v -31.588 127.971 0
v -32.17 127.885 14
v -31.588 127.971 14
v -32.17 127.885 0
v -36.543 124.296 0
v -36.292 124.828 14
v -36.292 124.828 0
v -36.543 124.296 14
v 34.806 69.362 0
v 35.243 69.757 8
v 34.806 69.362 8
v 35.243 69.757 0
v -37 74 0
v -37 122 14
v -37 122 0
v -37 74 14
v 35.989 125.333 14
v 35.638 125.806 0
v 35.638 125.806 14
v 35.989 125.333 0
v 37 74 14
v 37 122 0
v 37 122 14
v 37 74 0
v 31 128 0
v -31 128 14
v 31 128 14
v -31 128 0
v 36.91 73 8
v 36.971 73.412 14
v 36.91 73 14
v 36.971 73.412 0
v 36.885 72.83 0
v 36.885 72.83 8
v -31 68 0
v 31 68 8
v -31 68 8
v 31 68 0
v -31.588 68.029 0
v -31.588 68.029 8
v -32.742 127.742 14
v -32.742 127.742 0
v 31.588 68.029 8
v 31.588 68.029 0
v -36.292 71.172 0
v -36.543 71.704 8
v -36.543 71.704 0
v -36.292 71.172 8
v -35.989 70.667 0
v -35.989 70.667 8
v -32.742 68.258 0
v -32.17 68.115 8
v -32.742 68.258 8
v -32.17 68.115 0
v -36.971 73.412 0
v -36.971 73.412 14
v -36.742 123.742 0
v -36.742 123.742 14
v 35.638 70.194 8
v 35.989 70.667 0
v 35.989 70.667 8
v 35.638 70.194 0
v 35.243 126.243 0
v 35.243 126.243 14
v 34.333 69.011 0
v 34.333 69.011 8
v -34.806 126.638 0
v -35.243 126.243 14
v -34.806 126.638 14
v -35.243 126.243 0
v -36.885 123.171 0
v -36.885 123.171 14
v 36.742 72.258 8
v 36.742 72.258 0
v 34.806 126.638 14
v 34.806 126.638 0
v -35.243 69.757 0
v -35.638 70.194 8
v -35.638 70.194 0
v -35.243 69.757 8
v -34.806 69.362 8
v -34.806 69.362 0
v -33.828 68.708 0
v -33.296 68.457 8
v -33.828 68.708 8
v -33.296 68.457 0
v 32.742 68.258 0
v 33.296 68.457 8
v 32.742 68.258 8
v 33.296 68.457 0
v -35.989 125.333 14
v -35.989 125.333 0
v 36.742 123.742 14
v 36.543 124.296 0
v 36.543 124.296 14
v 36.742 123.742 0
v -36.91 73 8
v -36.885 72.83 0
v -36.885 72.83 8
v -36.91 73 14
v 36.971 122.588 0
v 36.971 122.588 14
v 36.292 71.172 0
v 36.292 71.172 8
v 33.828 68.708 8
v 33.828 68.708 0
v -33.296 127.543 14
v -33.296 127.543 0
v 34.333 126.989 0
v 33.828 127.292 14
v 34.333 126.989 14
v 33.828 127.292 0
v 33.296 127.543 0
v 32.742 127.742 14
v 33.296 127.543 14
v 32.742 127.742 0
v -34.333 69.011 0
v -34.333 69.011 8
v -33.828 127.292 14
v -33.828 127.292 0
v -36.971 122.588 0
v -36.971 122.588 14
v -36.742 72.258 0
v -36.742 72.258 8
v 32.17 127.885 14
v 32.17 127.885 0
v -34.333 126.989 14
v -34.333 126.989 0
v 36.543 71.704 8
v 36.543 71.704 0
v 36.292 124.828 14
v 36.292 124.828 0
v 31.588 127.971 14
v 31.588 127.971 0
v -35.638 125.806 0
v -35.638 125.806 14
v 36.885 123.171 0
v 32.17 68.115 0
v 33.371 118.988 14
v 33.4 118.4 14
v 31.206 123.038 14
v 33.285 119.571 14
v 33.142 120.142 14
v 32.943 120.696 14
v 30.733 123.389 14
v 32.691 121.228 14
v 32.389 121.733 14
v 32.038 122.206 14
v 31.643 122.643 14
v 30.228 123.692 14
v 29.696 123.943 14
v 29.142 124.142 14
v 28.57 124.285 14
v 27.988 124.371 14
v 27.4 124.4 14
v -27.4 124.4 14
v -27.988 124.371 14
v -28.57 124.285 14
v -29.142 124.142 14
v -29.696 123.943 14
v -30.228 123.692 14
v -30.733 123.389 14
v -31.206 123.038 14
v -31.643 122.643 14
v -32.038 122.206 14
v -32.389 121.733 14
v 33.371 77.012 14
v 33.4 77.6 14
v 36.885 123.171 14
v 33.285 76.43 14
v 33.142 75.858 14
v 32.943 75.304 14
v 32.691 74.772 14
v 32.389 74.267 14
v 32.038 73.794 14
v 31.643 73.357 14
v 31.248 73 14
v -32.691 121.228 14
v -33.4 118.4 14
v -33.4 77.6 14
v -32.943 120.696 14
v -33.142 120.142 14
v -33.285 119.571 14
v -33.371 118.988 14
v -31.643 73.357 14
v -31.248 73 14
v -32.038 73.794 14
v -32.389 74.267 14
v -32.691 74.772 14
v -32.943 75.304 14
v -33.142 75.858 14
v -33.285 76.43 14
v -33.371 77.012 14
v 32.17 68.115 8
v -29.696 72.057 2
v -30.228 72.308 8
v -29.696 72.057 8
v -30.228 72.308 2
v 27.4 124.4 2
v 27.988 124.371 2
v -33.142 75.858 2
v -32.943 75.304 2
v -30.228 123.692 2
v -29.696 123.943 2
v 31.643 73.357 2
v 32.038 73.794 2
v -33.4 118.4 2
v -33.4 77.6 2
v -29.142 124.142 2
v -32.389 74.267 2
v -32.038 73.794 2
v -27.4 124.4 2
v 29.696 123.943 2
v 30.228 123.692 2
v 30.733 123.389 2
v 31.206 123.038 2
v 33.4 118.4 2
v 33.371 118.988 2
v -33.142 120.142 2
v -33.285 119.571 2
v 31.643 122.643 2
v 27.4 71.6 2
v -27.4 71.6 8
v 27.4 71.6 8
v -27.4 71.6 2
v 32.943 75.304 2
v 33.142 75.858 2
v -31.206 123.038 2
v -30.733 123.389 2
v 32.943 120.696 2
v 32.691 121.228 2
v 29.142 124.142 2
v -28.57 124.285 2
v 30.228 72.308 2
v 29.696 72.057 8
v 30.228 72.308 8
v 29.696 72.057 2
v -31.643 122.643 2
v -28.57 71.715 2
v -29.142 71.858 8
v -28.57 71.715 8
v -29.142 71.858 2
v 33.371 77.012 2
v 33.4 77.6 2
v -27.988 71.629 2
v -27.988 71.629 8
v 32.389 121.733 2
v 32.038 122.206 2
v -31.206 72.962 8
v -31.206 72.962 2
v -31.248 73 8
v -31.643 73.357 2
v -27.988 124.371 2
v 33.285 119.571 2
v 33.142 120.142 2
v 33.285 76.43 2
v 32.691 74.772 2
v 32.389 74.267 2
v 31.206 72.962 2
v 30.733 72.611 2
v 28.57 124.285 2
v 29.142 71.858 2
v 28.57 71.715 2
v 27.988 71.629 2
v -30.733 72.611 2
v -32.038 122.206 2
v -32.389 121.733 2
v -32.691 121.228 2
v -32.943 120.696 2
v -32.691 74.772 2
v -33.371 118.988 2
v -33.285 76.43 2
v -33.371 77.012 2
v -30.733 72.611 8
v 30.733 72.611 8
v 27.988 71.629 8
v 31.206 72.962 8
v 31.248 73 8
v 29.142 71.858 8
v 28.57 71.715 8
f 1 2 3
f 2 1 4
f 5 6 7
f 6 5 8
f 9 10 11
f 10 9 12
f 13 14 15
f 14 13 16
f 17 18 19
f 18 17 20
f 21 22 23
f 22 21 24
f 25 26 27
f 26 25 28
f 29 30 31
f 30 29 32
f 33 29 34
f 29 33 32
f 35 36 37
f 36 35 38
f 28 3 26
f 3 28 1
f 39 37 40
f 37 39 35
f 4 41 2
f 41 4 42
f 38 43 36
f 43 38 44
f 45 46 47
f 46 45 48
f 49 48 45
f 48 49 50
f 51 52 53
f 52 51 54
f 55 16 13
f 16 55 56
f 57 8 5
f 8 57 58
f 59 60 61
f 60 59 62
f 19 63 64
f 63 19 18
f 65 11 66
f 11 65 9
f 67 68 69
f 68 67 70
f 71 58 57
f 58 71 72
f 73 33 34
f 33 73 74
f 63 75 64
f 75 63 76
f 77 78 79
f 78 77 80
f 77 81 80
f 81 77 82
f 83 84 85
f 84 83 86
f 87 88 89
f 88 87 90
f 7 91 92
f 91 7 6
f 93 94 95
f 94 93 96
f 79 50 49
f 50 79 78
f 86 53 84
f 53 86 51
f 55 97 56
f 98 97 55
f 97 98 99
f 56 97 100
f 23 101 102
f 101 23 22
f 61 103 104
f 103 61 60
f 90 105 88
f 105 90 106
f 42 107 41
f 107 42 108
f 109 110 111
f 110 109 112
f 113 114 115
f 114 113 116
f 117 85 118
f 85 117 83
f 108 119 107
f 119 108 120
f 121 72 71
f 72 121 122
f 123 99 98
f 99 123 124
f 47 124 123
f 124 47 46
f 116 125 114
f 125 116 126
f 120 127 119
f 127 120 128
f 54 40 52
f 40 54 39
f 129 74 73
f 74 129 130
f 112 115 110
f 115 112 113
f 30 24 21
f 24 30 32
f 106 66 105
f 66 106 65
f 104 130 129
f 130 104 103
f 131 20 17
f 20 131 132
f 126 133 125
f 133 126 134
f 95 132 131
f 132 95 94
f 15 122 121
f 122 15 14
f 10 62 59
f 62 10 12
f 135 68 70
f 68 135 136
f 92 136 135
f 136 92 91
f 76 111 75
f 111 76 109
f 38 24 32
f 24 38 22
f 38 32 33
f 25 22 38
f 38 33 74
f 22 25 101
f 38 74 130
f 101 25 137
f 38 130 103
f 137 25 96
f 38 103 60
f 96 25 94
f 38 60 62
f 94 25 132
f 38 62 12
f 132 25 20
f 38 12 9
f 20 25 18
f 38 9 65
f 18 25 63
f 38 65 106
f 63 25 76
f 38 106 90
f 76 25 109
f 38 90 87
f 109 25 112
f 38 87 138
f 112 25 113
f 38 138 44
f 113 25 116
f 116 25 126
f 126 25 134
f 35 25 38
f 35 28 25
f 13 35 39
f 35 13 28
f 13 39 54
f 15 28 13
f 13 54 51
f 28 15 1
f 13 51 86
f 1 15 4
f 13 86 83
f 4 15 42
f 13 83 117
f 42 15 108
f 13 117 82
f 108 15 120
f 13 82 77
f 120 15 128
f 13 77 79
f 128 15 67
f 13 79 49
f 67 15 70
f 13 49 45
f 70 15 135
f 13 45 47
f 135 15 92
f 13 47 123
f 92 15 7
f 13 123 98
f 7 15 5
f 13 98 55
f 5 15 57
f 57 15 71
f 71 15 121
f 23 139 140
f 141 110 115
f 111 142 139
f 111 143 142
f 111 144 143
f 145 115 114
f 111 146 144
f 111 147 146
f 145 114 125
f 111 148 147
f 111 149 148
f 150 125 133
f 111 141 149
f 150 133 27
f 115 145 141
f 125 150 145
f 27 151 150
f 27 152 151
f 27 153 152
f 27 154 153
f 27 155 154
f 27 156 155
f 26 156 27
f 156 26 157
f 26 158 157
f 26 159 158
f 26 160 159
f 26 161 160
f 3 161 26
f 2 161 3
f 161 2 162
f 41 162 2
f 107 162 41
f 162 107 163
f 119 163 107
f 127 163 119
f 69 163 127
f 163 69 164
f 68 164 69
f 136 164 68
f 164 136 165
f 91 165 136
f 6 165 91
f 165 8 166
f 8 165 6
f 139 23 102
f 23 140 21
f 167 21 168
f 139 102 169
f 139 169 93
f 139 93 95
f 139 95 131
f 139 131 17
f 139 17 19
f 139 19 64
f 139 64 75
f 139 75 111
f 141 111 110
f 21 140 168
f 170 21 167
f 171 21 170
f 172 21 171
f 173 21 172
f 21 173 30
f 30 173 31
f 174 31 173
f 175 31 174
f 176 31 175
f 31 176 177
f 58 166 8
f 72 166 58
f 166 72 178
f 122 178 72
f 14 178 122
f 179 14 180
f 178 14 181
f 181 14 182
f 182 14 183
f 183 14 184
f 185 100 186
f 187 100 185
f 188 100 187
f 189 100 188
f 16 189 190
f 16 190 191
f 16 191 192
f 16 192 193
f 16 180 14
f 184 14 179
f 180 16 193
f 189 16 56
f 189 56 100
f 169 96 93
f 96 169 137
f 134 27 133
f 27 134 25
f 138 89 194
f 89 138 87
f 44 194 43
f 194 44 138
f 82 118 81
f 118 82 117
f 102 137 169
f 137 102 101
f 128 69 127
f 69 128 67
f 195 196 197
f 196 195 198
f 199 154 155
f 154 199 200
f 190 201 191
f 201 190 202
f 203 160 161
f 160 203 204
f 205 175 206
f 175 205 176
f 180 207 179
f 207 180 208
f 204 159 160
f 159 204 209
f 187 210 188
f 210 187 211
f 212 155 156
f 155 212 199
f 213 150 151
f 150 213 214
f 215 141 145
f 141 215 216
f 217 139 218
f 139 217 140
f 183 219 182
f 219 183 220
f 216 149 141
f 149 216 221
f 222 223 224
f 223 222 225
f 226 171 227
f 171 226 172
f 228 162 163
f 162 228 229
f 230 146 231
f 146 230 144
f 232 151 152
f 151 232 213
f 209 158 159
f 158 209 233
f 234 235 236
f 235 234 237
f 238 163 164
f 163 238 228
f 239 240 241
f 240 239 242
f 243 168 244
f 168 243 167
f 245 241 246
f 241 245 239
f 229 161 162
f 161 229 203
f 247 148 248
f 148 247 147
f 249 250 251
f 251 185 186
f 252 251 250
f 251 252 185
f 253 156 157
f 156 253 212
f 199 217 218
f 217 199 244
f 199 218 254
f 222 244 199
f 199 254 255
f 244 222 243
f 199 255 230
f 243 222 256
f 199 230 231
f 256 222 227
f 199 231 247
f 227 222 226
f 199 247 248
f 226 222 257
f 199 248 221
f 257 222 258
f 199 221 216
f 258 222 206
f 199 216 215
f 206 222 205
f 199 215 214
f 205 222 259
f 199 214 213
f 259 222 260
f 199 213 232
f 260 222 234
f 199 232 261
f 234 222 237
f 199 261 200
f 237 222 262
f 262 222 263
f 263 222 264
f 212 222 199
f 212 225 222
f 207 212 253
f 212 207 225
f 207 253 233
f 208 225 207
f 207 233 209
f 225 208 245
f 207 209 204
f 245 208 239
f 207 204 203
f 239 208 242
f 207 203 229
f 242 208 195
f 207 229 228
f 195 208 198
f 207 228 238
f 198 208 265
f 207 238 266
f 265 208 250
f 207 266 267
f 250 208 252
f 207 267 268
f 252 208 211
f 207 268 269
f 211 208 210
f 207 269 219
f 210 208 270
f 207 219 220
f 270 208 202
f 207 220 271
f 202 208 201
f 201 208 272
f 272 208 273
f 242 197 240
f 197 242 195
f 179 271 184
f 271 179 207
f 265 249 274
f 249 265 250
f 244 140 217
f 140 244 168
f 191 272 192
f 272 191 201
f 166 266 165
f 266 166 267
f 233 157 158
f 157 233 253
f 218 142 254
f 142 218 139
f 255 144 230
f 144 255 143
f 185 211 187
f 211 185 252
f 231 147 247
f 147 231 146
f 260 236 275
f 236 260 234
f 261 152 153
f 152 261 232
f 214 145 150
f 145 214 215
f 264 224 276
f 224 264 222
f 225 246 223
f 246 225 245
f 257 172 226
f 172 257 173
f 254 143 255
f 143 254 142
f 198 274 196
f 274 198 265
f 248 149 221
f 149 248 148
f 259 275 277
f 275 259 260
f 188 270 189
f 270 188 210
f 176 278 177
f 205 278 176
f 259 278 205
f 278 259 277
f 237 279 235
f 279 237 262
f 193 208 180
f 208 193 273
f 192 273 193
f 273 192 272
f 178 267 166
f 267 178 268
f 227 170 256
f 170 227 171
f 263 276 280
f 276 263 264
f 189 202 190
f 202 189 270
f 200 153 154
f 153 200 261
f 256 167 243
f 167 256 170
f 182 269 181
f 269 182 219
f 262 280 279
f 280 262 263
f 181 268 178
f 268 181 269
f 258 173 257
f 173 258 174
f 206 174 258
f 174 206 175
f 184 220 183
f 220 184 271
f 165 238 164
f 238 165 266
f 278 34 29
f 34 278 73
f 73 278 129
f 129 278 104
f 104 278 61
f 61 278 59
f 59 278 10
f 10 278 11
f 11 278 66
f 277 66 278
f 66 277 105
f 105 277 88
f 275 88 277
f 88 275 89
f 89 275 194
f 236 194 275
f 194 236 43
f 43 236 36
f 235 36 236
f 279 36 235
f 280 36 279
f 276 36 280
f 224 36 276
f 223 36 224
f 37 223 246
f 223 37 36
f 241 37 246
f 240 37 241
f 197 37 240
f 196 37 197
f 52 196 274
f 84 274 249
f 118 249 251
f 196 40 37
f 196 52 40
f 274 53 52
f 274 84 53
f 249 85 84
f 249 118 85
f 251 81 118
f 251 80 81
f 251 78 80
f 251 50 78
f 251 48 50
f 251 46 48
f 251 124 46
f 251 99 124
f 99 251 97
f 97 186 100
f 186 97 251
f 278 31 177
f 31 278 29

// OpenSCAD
// file: lib_v2.scad
// ============================================================================
// Shared geometry helpers for the v2 print set.   include <lib_v2.scad>;
// ============================================================================

// Wedge prism, centred on +X, spanning +/- ang/2, rising from z = 0.
module sector_prism(r, ang, h, seg = 64) {
    steps = max(4, ceil(ang / 2.5));   // ~2.5 deg chords, independent of ang
    linear_extrude(height = h)
        polygon(concat(
            [[0, 0]],
            [for (i = [0 : steps])
                let (a = -ang / 2 + ang * i / steps) [r * cos(a), r * sin(a)]]
        ));
}

// Annular sector prism, centred on +X, rising from z = 0.
module ring_sector(r_in, r_out, ang, h, seg = 64) {
    difference() {
        sector_prism(r_out, ang, h, seg);
        translate([0, 0, -0.05]) cylinder(h = h + 0.1, r = r_in, $fn = seg);
    }
}

module tube(od, id, h) {
    difference() {
        cylinder(h = h, d = od);
        translate([0, 0, -0.05]) cylinder(h = h + 0.1, d = id);
    }
}

// Inward ledge with a 45 deg self-supporting underside. Top face at z_top.
module chamfered_ledge(r_wall, w, z_top) {
    rotate_extrude(convexity = 4)
        polygon([[r_wall - w, z_top],
                 [r_wall,     z_top],
                 [r_wall,     z_top - w]]);
}

// Thin slab used as a hull station for the chute trough.
module station_slab(y, z, w, t = 0.6) {
    translate([-w / 2, y - t / 2, z]) cube([w, t, 0.6]);
}
// file: parameters_v2.scad
// ============================================================================
// Automated Pill Dispenser — v2 "carousel-only rotation" architecture
// Shared parametric dimensions.   include <parameters_v2.scad>;
//
// Coordinate convention: z = 0 is the table / underside of the drum.
// +Y is the FRONT of the unit (chute, catch tray, camera side).
// Every part module is authored in ASSEMBLY coordinates; each part file
// applies its own print-orientation transform for STL export.
// ============================================================================

// ---------------------------------------------------------------- print / fit
layer_h        = 0.2;
nozzle_d       = 0.4;
wall           = 3.0;   // drum wall thickness
fit_slip       = 0.35;  // sliding fit (rotating / removable parts)
fit_press      = 0.10;  // press fit
m3_pilot_d     = 2.55;  // self-tapping M3 into PLA
m3_free_d      = 3.35;
m2_pilot_d     = 1.65;  // servo tab screws
m2_free_d      = 2.30;

// ---------------------------------------------------------------- drum (A)
h_od           = 120.0;
h_id           = h_od - 2 * wall;          // 114.0
h_ri           = h_id / 2;                 // 57.0
h_top_z        = 86.0;                     // top rim height

// ---------------------------------------------------------------- fixed plate (B)
plate_t        = 4.0;
plate_z        = 52.0;                     // plate UNDERSIDE
plate_top      = plate_z + plate_t;        // 56.0
plate_dia      = h_id - 0.6;               // 113.4  (0.3 gap per side)
plate_r        = plate_dia / 2;

ledge_w        = 3.0;                      // inward width of the support ledge
key_n          = 3;                        // anti-rotation keys
key_arc_w      = 10.0;                     // key width (chord, mm)
key_h          = 3.0;                      // key depth below the plate
key_angles     = [30, 150, 270];

// The one and only opening in the fixed plate. Opens right out to the rim so
// no pill can ever ride around on a closed outer ledge.
// Width is set by the leak rule below, not by taste.
open_deg       = 18.0;
open_r_in      = 15.0;
open_deg_ctr   = 90.0;                     // centred on +Y (front)

// Centre pilot: a post stands up from the plate and the carousel hub drops
// onto it. The post carries the carousel's weight, so the servo shaft only
// ever sees torque, and both halves print with no overhangs.
pilot_d        = 10.0;
pilot_engage   = 2.4;

// ---------------------------------------------------------------- carousel (C)
car_n          = 6;                        // compartments
car_od         = h_id - 1.4;               // 112.6 -> 0.7 mm pill-proof wall gap
car_r          = car_od / 2;
car_floor_t    = 2.4;
car_div_t      = 2.4;
car_div_h      = 24.0;                     // divider height ABOVE the floor
car_hub_od     = 28.0;
car_gap        = 0.6;                      // running gap, carousel floor -> plate
car_z          = plate_top + car_gap;      // 56.6 floor underside
car_top        = car_z + car_floor_t + car_div_h;

// One drop hole per compartment. THE LEAK RULE: the solid floor band between
// two holes (pitch - car_hole_deg) must be WIDER than the plate opening, or the
// parked carousel leaves part of the opening uncovered and its neighbours
// dribble pills into the chute. 60 - 30 = 30 deg of band over an 18 deg
// opening leaves +/- 6 deg of servo parking error before anything leaks.
car_hole_deg   = 30.0;
car_hole_r_in  = 15.5;
car_hole_r_out = car_r + 1.0;              // breaches the rim: nothing rides past

// Because the hole is narrower than the compartment, each floor flange is
// ramped so tablets roll into the hole instead of parking on a flat ledge.
ramp_phi       = 22.0;
ramp_max_h     = 6.0;

pilot_post_h   = car_gap + pilot_engage;   // 3.0, stands on the plate
pilot_bore_d   = pilot_d + fit_slip;       // 10.35 journal in the hub underside

// Round MG90S horn, screwed splines-up into the hub top. The servo shaft just
// plugs down into it, so the carousel still lifts straight out for refilling.
horn_disc_d    = 20.4;
horn_disc_h    = 4.2;
horn_hole_r    = 7.5;
horn_screw_n   = 4;
horn_boss_d    = 8.5;                      // spline boss / screw-head relief
horn_boss_depth= 8.0;

// ---------------------------------------------------------------- servo (MG90S)
servo_l        = 22.8;
servo_w        = 12.2;
servo_case_h   = 22.5;
servo_tab_span = 32.2;
servo_tab_t    = 2.5;
servo_shaft_in = 5.9;   // shaft axis, measured in from the flange-side case end
servo_nose_h   = 6.0;   // flange plane -> top of case
servo_shaft_h  = 4.7;   // shaft protrusion above the case

// ---------------------------------------------------------------- servo bridge (E)
bridge_t       = 4.0;
bridge_z       = h_top_z;                  // sits on the rim
bridge_ear_n   = 4;
bridge_ear_w   = 16.0;
boss_out       = 5.0;                      // external screw boss, radial depth
boss_h         = 14.0;                     // boss height below the rim
boss_angles    = [45, 135, 225, 315];

// ---------------------------------------------------------------- drop chute (D)
chute_wall     = 2.4;
chute_win_w    = 40.0 + 2 * chute_wall + 0.8;   // 45.6 wall window width
chute_win_z0   = 16.0;                          // window bottom
chute_win_z1   = 38.0;                          // window top (45 deg gable above)

// Trough stations: [ y, floor z, inside width, side-wall top z ].
// Inside the drum the side walls run right up to the plate underside so a
// tablet cannot bounce sideways into the electronics bay. The internal floor
// falls at 38 deg; the external run is the 45 deg section from the sketch.
chute_stations = [
    [15.0, 52.0, 20.0, 52.2],
    [50.0, 24.7, 48.0, 52.0],
    [57.0, 19.2, 40.0, 34.0],
    [70.0,  6.2, 40.0, 26.2],
];

// ---------------------------------------------------------------- catch tray (F)
tray_y0        = 68.0;                     // rear wall, just under the chute lip
tray_l         = 60.0;                     // outward (Y) length
tray_w         = 74.0;
tray_floor     = 2.0;
tray_h         = 14.0;
tray_rear_h    = 8.0;                      // low rear wall, clears the chute lip

// ---------------------------------------------------------------- base cover (G)
base_t         = 3.0;
base_z         = -base_t;                  // cover bottom = the table plane
post_d         = 9.0;
post_h         = 16.0;
post_r         = h_ri - post_d / 2 + 0.8;  // overlaps the wall so it fuses
post_angles    = [70, 190, 310];
cable_w        = 12.0;
cable_h        = 6.0;
// main file
// ============================================================================
// v2 PART F — catch tray ("pill catcher")
//
// Free-standing, lifts away for the patient to take the dose, and doubles as
// the flat matte landing zone the laptop camera counts pills in. The rear wall
// is short so it tucks under the chute lip.
// ============================================================================

include <parameters_v2.scad>;
include <lib_v2.scad>;

$fn = 64;

corner_r = 6.0;

module f2_shell(inset, h, z0) {
    x = tray_w - 2 * inset;
    y = tray_l - 2 * inset;
    translate([0, tray_y0 + tray_l / 2, z0])
        hull() for (ix = [-1, 1], iy = [-1, 1])
            translate([ix * (x / 2 - corner_r), iy * (y / 2 - corner_r), 0])
                cylinder(h = h, r = corner_r);
}

module catch_tray_v2() {
    difference() {
        f2_shell(0, tray_h, base_z);
        // Well.
        f2_shell(tray_floor + 1.6, tray_h, base_z + tray_floor);
        // Drop the rear wall so the chute lip overhangs into the well.
        translate([-tray_w / 2 - 1, tray_y0 - 1, base_z + tray_rear_h])
            cube([tray_w + 2, 6, tray_h]);
    }
}

// Print orientation: as modelled, flat on the bed.
translate([0, 0, -base_z]) catch_tray_v2();

echo(str("F2 tray: ", tray_w, " x ", tray_l, " x ", tray_h, " mm"));
